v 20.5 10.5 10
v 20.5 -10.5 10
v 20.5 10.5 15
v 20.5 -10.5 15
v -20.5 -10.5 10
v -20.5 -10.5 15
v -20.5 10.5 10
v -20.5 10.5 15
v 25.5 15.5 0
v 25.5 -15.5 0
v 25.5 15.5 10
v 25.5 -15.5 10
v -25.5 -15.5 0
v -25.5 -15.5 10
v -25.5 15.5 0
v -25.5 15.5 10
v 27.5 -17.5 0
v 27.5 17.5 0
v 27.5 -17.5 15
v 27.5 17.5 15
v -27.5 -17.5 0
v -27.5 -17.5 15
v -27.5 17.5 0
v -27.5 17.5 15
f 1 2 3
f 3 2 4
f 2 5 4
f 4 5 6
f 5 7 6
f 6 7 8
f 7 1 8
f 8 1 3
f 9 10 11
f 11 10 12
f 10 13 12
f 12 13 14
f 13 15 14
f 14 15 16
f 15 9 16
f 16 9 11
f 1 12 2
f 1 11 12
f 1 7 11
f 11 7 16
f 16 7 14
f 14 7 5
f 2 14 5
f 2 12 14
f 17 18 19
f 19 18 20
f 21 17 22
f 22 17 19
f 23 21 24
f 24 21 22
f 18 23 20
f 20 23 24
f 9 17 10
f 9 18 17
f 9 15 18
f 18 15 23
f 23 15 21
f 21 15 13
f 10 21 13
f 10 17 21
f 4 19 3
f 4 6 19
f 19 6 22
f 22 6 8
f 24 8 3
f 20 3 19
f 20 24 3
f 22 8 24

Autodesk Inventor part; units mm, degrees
ref_plane "Work Plane1" through (0, 0, 80) normal (0, 0, 1) x (1, 0, 0)
ref_plane "YZ Plane" through (0, 0, 0) normal (1, 0, 0) x (0, 1, 0)
ref_plane "XZ Plane" through (0, 0, 0) normal (0, 1, 0) x (-1, 0, 0)
sketch "Sketch4" plane through (0, 0, 0) normal (0, 0, 1) x (1, 0, 0)
  line L0 (-27.5, 17.5) -> (27.5, 17.5)
  line L1 (27.5, 17.5) -> (27.5, -17.5)
  line L2 (27.5, -17.5) -> (-27.5, -17.5)
  line L3 (-27.5, -17.5) -> (-27.5, 17.5)
  line L4 (0, 0) -> (0, -2.5)
  line L5 (0, 0) -> (1.7044, 0)
  dimension "d52" = 55
  dimension "d53" = 35
extrude "Extrusion3" add sketch "Sketch4" along normal blind 15
sketch "Sketch1" plane through (0, 0, 0) normal (0, 0, -1) x (-1, 0, 0)
  line L0 (-25.5, 15.5) -> (25.5, 15.5)
  line L1 (25.5, 15.5) -> (25.5, -15.5)
  line L2 (25.5, -15.5) -> (-25.5, -15.5)
  line L3 (-25.5, -15.5) -> (-25.5, 15.5)
  line L4 (27.5, 17.5) -> (-27.5, 17.5) projected
  line L5 (-27.5, 17.5) -> (-27.5, -17.5) projected
  line L6 (-27.5, -17.5) -> (27.5, -17.5) projected
  line L7 (27.5, -17.5) -> (27.5, 17.5) projected
  line L8 (0, 0) -> (0, -2)
  line L9 (0, 0) -> (2, 0)
  dimension "d0" = 51
  dimension "d1" = 31
extrude "Extrusion4" cut sketch "Sketch1" against normal blind 10 contours L0 L1 L2 L3
sketch "Sketch5" plane through (0, 0, 10) normal (0, 0, -1) x (-1, 0, 0)
  line L0 (-25.5, 15.5) -> (25.5, 15.5) projected
  line L1 (-25.5, -15.5) -> (-25.5, 15.5) projected
  line L2 (25.5, -15.5) -> (-25.5, -15.5) projected
  line L3 (25.5, 15.5) -> (25.5, -15.5) projected
  line L4 (0, 0) -> (2, 0)
  line L5 (0, 0) -> (0, -2)
  line L6 (-20.5, 10.5) -> (20.5, 10.5)
  line L7 (20.5, 10.5) -> (20.5, -10.5)
  line L8 (20.5, -10.5) -> (-20.5, -10.5)
  line L9 (-20.5, -10.5) -> (-20.5, 10.5)
  dimension "d58" = 2
  dimension "d59" = 2
  dimension "d60" = 41
  dimension "d61" = 21
extrude "Extrusion5" cut sketch "Sketch5" against normal blind 5 contours L6 L7 L8 L9
sketch "Sketch2" plane through (0, 0, 80) normal (0, 0, 1) x (1, 0, 0)
  circle A0 centre (0, 0) radius 55
  dimension "d6" = 110
sketch "Sketch3" plane through (0, 0, 80) normal (0, 0, 1) x (1, 0, 0)
  circle A0 centre (0, 0) radius 52
  dimension "d30" = 104
properties part number "embudo0.2"
